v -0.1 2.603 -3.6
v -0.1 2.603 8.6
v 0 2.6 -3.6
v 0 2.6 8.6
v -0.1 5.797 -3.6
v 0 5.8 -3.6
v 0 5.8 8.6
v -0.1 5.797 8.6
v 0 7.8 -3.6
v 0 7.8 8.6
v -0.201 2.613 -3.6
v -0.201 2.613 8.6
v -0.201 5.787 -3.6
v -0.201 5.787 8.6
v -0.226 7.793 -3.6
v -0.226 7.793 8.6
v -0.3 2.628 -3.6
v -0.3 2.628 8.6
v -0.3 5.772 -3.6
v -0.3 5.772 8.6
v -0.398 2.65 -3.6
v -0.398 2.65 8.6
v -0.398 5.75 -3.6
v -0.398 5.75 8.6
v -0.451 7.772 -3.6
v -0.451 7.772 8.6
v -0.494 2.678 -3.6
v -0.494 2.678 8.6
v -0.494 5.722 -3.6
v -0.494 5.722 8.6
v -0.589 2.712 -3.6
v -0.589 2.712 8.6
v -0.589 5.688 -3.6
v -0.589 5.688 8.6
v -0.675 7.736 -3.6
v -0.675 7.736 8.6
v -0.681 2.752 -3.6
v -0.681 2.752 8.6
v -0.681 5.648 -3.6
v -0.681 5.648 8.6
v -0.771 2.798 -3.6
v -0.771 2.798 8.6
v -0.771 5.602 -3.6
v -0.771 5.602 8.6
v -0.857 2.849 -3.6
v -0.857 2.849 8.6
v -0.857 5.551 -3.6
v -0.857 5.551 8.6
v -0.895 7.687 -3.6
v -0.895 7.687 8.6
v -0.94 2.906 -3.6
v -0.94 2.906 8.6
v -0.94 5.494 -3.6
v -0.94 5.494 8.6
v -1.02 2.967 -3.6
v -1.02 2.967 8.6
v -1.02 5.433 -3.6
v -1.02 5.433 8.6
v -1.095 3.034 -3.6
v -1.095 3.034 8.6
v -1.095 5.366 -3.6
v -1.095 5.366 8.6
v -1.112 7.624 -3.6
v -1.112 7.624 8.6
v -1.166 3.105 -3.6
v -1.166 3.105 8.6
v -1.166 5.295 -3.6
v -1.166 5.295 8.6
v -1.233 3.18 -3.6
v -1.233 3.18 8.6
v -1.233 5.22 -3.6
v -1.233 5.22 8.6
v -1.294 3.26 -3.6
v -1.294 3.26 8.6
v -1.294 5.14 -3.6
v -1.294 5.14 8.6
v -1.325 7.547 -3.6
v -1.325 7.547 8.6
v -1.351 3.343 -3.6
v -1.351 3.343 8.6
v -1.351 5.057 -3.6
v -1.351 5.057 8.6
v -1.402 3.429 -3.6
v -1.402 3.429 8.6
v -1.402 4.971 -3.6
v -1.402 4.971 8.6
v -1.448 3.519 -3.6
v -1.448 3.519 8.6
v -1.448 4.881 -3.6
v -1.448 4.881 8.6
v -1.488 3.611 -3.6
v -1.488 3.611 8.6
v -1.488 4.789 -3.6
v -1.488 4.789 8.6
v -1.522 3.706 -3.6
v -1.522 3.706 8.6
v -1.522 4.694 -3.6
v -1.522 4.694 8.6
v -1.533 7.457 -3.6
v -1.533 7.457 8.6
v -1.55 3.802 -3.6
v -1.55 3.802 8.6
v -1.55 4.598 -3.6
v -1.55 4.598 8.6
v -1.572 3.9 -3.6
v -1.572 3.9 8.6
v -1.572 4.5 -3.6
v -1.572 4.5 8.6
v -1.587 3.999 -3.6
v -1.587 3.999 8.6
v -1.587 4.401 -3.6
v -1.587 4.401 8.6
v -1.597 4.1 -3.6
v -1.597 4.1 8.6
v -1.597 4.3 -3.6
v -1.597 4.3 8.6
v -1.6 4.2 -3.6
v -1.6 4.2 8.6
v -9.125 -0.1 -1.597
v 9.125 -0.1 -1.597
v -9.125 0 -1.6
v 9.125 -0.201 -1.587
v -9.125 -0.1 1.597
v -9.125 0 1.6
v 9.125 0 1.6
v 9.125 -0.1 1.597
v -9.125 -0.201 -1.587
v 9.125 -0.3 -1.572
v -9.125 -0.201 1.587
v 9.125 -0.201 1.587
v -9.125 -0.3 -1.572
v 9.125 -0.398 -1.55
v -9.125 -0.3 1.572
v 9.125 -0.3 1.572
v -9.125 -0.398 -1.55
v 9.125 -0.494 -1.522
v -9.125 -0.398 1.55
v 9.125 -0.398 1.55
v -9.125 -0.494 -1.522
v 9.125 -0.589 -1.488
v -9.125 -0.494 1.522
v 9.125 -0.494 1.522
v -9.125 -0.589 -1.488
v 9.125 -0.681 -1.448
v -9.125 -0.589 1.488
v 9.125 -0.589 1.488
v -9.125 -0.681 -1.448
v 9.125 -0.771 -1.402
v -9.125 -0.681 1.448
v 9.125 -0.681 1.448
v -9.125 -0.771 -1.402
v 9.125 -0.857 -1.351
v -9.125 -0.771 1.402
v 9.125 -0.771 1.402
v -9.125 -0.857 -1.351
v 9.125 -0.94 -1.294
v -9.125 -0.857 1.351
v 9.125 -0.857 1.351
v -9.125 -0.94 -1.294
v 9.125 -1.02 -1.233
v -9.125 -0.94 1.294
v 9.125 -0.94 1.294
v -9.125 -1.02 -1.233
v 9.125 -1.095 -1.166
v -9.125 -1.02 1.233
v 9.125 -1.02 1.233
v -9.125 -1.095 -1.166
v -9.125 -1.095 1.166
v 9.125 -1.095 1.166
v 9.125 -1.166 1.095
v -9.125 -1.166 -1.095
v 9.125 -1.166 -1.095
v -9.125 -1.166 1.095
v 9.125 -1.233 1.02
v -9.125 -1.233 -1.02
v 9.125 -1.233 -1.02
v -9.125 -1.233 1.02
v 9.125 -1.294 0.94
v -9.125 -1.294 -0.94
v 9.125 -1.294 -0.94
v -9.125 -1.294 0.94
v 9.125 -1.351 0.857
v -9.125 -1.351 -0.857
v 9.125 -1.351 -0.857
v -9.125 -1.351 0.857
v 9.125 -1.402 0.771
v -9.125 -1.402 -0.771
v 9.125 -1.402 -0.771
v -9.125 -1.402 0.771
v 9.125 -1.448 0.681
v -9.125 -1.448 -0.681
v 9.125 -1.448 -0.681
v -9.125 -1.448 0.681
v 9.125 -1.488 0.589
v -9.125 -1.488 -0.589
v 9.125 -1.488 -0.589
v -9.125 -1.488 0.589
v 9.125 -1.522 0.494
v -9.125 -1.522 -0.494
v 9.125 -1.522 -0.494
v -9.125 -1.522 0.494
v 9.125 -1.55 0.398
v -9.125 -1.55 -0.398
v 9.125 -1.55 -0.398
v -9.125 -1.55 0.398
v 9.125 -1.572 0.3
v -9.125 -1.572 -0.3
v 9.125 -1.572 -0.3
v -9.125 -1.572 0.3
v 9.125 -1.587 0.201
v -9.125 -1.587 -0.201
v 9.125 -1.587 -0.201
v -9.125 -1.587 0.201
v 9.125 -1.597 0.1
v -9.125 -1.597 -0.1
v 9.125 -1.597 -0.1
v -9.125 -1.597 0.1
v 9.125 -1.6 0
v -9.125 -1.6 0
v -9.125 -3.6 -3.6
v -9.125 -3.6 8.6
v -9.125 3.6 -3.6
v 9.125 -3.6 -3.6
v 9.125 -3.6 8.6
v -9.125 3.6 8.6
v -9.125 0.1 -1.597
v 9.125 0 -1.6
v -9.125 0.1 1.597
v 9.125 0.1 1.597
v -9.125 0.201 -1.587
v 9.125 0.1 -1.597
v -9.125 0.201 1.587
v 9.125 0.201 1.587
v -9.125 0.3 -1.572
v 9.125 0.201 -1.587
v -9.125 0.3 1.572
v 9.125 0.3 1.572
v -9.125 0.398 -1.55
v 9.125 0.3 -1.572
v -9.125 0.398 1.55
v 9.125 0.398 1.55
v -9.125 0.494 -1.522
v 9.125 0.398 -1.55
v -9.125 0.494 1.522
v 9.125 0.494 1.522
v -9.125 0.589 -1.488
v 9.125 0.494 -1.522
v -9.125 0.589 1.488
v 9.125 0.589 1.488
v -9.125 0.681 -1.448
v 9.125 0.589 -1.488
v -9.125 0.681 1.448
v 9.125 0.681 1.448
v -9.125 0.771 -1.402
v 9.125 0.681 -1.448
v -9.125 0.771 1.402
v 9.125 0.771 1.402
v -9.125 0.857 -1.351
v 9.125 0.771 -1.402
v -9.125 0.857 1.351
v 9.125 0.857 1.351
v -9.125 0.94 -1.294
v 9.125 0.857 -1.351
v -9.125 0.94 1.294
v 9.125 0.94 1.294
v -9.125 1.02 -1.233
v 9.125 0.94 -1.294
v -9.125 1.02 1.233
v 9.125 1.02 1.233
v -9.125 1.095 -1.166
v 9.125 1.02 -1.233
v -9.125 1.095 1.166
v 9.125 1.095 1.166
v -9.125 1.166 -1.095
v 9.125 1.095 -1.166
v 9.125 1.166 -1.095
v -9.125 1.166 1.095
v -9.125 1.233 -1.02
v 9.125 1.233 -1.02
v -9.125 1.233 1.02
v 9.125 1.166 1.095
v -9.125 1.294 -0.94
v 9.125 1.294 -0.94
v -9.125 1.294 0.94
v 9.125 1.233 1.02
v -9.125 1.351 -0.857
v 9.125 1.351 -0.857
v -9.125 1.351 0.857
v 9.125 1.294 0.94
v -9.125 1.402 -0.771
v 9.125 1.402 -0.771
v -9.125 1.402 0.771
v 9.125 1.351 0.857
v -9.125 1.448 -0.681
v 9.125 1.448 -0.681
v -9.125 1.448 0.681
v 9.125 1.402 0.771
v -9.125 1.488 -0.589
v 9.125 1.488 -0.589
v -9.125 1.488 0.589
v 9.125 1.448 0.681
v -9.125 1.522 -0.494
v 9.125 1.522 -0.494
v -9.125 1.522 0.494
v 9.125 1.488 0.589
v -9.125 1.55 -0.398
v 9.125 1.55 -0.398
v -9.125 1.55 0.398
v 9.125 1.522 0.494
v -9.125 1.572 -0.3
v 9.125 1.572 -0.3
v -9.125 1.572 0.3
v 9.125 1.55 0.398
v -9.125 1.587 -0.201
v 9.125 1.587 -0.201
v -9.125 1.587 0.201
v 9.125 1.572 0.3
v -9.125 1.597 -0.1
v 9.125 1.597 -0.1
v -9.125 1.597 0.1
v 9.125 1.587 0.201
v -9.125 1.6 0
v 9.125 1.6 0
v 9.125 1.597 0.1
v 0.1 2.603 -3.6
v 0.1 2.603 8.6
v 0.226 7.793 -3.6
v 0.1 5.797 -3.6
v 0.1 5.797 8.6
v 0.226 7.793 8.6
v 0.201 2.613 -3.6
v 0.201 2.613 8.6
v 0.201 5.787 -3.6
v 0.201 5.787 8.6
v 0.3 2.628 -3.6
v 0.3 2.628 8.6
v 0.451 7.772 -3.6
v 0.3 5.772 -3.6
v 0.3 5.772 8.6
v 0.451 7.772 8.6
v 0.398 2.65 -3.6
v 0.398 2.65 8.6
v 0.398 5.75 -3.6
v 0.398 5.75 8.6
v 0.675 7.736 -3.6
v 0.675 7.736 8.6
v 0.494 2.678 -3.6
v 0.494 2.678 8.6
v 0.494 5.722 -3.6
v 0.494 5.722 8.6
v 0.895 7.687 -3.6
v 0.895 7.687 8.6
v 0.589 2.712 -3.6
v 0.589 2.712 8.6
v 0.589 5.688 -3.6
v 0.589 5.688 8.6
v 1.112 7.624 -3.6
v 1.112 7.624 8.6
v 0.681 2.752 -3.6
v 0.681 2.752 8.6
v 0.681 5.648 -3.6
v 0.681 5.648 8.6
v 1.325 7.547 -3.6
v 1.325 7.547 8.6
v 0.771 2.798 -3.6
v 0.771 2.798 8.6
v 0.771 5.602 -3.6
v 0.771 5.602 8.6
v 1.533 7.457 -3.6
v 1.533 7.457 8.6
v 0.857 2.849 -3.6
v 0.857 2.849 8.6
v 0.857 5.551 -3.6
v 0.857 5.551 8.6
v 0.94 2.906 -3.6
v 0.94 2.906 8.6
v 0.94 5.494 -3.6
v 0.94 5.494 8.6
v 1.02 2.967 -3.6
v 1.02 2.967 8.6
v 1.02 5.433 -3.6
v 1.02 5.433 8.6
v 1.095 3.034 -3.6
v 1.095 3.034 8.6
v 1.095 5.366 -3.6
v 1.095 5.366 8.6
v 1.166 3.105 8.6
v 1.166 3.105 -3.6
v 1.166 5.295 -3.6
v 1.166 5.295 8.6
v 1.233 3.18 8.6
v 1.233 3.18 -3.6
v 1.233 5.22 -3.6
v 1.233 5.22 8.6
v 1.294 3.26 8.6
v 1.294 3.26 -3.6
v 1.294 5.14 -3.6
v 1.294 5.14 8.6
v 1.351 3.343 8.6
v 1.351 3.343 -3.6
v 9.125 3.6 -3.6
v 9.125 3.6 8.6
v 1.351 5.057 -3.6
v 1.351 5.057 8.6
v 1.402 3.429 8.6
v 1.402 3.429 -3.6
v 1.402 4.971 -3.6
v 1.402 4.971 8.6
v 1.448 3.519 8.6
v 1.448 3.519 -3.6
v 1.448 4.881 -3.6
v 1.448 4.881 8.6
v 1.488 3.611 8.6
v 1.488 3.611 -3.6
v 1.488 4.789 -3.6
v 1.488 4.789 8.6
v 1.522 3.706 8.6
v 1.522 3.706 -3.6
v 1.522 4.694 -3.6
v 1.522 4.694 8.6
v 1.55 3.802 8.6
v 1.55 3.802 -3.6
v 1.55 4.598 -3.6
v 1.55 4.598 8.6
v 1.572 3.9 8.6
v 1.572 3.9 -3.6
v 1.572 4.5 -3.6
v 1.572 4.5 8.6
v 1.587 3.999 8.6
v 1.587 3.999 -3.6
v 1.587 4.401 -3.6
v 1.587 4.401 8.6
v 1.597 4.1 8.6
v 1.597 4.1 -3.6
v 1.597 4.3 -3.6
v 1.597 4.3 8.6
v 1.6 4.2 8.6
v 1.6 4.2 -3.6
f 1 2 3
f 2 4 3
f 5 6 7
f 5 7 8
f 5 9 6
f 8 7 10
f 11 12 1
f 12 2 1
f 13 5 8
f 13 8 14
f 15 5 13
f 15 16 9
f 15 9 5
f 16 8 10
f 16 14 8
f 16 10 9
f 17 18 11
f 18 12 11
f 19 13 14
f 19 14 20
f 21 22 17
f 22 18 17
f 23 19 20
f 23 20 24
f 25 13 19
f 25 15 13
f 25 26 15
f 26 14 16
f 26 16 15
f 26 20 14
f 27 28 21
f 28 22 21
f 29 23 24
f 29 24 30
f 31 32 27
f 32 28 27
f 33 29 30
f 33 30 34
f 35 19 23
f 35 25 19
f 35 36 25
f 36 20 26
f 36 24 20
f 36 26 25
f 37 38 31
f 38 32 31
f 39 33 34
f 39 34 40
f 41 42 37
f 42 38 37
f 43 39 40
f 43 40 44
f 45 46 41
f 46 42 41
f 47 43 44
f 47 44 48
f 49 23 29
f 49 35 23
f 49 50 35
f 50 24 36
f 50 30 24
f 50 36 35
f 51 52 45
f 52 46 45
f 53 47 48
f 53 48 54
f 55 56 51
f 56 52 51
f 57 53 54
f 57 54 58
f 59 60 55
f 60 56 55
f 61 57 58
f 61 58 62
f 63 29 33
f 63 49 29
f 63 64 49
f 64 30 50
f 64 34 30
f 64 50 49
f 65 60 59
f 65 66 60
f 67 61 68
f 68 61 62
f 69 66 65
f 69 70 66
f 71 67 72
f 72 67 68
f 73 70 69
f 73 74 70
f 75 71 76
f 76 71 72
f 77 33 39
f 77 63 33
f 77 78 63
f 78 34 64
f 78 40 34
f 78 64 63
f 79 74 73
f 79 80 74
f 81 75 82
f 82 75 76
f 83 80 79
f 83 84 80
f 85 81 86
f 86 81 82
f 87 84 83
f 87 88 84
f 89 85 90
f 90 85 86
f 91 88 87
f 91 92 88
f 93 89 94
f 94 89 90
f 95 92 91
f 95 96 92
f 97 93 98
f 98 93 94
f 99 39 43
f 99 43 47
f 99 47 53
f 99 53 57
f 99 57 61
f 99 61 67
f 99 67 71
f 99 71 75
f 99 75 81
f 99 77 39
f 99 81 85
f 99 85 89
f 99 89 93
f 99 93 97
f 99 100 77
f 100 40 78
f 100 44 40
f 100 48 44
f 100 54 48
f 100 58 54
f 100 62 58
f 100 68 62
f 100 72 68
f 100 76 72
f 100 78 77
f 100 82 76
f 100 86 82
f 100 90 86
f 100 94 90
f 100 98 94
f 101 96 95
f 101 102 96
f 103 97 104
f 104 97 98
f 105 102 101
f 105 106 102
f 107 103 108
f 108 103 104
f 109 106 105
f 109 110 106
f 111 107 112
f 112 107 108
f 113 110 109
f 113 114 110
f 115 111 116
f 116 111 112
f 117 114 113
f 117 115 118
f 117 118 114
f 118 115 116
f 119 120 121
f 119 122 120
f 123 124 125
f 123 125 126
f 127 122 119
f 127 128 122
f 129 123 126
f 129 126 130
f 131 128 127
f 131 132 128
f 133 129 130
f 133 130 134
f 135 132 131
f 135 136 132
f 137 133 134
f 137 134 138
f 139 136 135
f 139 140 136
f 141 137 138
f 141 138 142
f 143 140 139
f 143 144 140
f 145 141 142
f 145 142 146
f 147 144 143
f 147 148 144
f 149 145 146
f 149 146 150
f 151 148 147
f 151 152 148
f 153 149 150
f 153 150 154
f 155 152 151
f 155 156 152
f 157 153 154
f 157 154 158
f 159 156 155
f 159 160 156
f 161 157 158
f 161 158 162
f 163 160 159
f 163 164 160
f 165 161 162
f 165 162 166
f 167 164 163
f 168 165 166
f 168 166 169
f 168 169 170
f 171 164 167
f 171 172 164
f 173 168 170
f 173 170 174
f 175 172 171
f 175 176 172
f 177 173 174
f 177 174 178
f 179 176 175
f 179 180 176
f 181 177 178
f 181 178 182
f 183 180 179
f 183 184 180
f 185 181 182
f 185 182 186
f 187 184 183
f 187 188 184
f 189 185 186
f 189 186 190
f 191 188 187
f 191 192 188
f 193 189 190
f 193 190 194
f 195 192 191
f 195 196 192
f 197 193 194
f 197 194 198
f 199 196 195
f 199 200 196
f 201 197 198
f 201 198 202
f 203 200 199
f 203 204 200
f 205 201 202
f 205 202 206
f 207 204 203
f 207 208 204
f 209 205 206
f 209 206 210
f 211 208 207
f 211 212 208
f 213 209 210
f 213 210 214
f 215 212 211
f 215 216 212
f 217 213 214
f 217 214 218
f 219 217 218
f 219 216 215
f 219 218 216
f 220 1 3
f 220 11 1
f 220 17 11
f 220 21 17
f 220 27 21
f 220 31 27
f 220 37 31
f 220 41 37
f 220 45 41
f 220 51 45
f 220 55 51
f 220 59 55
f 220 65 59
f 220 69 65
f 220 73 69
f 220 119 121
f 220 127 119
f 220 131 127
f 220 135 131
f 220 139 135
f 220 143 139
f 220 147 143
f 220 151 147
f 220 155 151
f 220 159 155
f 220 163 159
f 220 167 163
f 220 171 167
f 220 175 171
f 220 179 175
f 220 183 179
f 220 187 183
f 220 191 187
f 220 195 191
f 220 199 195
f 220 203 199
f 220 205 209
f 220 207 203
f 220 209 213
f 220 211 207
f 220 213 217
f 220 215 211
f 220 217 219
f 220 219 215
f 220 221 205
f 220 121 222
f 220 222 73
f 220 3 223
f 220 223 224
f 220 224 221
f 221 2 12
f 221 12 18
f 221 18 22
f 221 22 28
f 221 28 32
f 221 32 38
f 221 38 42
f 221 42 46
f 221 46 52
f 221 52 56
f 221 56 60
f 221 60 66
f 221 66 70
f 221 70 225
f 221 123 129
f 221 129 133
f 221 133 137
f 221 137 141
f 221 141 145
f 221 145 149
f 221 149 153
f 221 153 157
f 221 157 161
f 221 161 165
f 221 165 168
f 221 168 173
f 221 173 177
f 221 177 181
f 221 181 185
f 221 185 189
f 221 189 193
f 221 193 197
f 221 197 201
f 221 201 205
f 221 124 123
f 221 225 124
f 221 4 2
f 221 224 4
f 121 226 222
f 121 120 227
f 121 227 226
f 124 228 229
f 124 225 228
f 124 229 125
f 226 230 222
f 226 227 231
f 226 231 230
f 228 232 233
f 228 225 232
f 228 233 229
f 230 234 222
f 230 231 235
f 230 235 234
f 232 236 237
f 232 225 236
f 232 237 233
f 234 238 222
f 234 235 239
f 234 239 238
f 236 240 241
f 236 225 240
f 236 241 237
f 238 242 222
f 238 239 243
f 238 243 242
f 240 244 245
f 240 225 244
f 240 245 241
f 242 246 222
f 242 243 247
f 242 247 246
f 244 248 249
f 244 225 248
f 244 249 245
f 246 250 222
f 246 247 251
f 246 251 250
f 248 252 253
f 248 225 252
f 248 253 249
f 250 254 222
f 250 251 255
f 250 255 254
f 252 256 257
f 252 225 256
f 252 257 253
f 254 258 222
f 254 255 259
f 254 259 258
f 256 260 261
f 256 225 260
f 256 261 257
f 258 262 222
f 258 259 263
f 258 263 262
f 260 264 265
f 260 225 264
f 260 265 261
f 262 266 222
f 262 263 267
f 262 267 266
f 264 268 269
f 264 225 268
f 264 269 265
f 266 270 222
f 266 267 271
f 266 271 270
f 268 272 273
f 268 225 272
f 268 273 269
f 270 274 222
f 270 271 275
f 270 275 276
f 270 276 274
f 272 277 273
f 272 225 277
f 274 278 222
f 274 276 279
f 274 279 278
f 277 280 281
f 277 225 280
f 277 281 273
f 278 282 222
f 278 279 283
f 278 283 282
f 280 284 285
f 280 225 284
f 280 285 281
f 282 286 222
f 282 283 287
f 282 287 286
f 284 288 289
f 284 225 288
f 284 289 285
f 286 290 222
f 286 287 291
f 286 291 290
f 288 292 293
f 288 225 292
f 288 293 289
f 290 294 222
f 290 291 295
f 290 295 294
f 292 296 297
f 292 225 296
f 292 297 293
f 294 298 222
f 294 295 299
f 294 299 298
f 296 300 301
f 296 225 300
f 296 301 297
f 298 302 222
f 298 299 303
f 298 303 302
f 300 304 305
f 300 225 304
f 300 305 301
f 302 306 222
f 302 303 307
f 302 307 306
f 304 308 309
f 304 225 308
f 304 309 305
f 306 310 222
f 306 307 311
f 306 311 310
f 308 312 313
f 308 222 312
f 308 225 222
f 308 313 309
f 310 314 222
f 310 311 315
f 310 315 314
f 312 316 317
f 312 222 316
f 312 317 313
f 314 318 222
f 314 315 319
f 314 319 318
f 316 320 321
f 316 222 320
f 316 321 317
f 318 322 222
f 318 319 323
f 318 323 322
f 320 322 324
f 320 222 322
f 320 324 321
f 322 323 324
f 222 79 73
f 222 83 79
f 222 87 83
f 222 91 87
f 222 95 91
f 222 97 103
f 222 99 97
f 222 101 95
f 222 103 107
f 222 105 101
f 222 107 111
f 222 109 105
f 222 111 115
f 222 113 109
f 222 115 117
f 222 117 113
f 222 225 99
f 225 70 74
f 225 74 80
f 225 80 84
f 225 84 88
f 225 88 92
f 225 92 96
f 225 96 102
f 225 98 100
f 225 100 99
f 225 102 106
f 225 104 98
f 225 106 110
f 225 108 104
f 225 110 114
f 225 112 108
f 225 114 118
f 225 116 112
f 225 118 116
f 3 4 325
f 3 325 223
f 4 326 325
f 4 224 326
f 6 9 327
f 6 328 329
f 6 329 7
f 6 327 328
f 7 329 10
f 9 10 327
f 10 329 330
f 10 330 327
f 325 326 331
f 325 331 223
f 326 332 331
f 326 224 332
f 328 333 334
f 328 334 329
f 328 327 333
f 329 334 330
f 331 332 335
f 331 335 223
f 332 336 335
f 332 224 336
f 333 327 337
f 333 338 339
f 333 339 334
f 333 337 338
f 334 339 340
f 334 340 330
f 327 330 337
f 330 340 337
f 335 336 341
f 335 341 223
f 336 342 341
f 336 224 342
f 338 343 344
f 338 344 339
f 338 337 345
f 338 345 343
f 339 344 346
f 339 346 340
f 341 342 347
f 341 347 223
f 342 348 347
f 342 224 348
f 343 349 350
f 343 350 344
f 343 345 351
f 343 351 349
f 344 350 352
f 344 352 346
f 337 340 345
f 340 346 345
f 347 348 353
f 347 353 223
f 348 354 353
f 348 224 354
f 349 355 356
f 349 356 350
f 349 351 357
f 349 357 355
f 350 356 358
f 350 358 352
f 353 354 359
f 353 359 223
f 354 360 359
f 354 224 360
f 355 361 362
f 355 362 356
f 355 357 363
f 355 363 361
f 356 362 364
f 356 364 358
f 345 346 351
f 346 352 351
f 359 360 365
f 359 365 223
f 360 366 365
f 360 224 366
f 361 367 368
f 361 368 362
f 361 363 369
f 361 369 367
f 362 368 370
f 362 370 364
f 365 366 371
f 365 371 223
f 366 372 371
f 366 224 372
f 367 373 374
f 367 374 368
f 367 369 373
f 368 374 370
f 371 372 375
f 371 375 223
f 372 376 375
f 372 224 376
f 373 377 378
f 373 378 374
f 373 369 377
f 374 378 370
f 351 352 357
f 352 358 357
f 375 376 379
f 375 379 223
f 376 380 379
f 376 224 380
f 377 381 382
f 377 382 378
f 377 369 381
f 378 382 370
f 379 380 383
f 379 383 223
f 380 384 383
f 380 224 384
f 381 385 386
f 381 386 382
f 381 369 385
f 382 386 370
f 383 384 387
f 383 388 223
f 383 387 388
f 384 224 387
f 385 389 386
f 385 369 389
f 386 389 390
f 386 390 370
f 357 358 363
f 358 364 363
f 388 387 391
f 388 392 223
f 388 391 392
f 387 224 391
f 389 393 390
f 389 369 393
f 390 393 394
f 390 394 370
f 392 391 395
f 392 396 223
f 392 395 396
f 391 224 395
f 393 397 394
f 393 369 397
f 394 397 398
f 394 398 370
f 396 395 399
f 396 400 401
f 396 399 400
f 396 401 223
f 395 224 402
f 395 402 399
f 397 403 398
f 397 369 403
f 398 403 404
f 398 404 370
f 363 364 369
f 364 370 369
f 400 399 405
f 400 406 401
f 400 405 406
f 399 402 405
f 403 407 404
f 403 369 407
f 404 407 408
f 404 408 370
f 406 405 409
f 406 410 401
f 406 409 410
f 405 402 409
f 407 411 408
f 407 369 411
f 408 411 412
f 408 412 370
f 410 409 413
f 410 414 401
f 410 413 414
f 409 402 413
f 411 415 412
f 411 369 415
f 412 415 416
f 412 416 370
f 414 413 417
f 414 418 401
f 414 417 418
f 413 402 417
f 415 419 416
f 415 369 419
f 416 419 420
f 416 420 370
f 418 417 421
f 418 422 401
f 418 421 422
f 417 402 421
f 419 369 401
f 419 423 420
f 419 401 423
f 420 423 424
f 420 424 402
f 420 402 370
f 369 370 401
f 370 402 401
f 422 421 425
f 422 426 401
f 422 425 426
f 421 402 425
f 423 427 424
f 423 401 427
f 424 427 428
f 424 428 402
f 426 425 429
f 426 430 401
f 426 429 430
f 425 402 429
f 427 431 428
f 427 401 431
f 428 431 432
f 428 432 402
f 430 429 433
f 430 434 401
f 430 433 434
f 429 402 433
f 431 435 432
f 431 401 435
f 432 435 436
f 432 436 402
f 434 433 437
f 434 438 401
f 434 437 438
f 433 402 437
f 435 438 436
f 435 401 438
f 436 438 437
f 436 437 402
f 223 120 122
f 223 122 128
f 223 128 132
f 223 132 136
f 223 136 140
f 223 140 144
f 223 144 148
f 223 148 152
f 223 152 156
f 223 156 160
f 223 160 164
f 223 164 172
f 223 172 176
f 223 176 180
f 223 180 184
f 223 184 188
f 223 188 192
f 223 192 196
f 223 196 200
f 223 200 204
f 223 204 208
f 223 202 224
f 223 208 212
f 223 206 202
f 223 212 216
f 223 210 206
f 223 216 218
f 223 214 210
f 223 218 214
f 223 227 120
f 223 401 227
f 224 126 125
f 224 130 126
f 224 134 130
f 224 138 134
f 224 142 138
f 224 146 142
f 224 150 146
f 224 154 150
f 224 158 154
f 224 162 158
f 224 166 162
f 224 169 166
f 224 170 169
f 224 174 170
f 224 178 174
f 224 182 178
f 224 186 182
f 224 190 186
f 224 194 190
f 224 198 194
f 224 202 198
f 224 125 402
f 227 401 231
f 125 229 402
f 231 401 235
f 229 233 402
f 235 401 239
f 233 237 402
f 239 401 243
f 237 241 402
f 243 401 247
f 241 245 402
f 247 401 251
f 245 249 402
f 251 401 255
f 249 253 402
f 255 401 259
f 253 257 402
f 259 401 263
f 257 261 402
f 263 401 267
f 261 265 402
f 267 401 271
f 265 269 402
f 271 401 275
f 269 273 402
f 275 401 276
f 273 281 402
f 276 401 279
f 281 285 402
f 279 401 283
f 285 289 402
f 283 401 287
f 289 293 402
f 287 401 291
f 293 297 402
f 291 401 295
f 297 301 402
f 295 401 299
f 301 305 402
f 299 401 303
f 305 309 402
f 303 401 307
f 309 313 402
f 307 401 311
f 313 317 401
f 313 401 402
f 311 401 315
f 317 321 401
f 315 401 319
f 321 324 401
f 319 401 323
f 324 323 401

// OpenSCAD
// file: ../parameters.scad
global_clearance = 0.5;


//Main tube diameter - hole [mm]
main_tube_outer_diameter = 25.4;
main_tube_inner_diameter = 23.05;

// Nastavení parametrů rotoru

gliding_aggle = 14;         // tenhle úhel by se zřejmě v budoucnu měl počítat z požadované klouzavosti.

rotor_blade_AOA = 1.5;      // nastavení úhlu náběhu rotorového listu
rotor_blade_length = 970;   // délka rotorového listu
rotor_blade_depth = 50;     // hloubka rotorového listu
rotor_height = 180;         // výška otočného kloubu rotoru nad hlavní trubkou vírníku (odhad)
rotor_blades_count = 3;
rotor_delta_angle = 12;


rotor_head_width =  21.4;    //Rozměr 1 v nákresu
pilon_wall_thickness = 4.2;  // Rozměr 2 v nákresu
horizontal_screw_distance = 14.5;   // Rozměr 4 v nákresu
vertical_screw_distance = 12;       // rozměr 5 v nkresu

rotorhead_wall_thickness = 1.5; // sila tistenych dilu


bearing_outer_diameter = 6;    // Rozměr B1 v nákresu s přídavkem na toleranci otvoru
bearing_thickness = 7;        // Rozměr B2 v nákresu
bearing_shaft_length = 19.5;    // Rozměr B3 v nákresu


// nastavení parametrů motoru

engine_angle = -8;
engine_diameter = 55;
engine_offset = 55;

engine_screws_radius = 15;
engine_holes_radius = (24 + 44)/4;
engine_shatf_hole_diameter = 13;

// screw length step - minimum difference in length between two types of screws
basic_screw_length = 5;

//Screw diameter and nut for M5 [mm]
M5_screw_diameter=5.5;
M5_head_height = 5;
M5_head_diameter = 13+0.5;
M5_nut_height = 4.5;
M5_nut_diameter = 9.4;
M5_nut_pocket = 8.4;

//Screw diameter and nut for M4 [mm]
M4_screw_diameter=4.5;
M4_screw_head_height = 4;
M4_nut_height = 3.2;
M4_nut_diameter = 8.4;
M4_nut_pocket = 7.5;

//Screw diameter and nut for M3 [mm]
M3_screw_diameter = 3.2;
M3_nut_height = 2.7;
M3_nut_diameter = 6.6;
M3_screw_head_height = 3;
M3_nut_pocket = 5.6;


//Screw diameter and nut for M2,5 [mm]
M2_5_screw_diameter = 2.7;
M2_5_nut_height = 2.3;
M2_5_nut_diameter = 6;
M2_5_nut_pocket = 5.1;

//Screw diameter and nut for M2 [mm]
M2_screw_diameter = 2.2;
M2_nut_height = 1.8;
M2_nut_diameter = 4.5;
M2_nut_pocket = 3.95;



//šroub servo
Servo_screw = 1.5;
Servo_nut_height = 1;
Servo_nut_diameter = 2.7;



//center_of_gravity_position = [main_pilon_position - tan(gliding_aggle)*rotor_height, 0, 0];


////podzvozek

radius_undercarriage = 25;
vzdalenost_x = tan(20) * 131;
vzdalenost_y = (131 - radius_undercarriage)/tan(79);
uhel_y = 90 - 20;
uhel_x = 90 - 79;

maximum_printable_size = 150;


////Pitotova trubice
Pitot_tube_diameter = 4.02 + 1;
Distance_hole_from_tube = 11.92;  //vzdálenost otvoru pro připevnění od samotné trubičky
// main file
//// ThunderFly - Rotor Head - Part 2

include <../parameters.scad>

length = rotor_head_width-2*rotorhead_wall_thickness-0.15; // Length of the part
axis_diameter = M3_screw_diameter;
space = 1; // Axis hole distance
wall = 2;

add = 5; // prodlouzeni osy ve smeru roll osy

$fn = 100;

module Part2(){
  translate([0, 0, -wall-axis_diameter/2])
    difference(){
        hull(){
            translate([-length/2, -(axis_diameter + 2*wall)/2, 0])
                cube([length, axis_diameter + 2*wall, axis_diameter + 2*wall + add]);
            translate([0, axis_diameter + space, 0])
                cylinder(d = axis_diameter + 2*wall, h = axis_diameter + 2*wall + add);
        }
    translate([0, axis_diameter + space, -0.1])
        cylinder(d = axis_diameter, h = 100);
    rotate([0, 90, 0])
        translate([-(axis_diameter + 2*wall)/2, 0, -50])
            cylinder(h = 100, d = axis_diameter);
    }
}

Part2();
